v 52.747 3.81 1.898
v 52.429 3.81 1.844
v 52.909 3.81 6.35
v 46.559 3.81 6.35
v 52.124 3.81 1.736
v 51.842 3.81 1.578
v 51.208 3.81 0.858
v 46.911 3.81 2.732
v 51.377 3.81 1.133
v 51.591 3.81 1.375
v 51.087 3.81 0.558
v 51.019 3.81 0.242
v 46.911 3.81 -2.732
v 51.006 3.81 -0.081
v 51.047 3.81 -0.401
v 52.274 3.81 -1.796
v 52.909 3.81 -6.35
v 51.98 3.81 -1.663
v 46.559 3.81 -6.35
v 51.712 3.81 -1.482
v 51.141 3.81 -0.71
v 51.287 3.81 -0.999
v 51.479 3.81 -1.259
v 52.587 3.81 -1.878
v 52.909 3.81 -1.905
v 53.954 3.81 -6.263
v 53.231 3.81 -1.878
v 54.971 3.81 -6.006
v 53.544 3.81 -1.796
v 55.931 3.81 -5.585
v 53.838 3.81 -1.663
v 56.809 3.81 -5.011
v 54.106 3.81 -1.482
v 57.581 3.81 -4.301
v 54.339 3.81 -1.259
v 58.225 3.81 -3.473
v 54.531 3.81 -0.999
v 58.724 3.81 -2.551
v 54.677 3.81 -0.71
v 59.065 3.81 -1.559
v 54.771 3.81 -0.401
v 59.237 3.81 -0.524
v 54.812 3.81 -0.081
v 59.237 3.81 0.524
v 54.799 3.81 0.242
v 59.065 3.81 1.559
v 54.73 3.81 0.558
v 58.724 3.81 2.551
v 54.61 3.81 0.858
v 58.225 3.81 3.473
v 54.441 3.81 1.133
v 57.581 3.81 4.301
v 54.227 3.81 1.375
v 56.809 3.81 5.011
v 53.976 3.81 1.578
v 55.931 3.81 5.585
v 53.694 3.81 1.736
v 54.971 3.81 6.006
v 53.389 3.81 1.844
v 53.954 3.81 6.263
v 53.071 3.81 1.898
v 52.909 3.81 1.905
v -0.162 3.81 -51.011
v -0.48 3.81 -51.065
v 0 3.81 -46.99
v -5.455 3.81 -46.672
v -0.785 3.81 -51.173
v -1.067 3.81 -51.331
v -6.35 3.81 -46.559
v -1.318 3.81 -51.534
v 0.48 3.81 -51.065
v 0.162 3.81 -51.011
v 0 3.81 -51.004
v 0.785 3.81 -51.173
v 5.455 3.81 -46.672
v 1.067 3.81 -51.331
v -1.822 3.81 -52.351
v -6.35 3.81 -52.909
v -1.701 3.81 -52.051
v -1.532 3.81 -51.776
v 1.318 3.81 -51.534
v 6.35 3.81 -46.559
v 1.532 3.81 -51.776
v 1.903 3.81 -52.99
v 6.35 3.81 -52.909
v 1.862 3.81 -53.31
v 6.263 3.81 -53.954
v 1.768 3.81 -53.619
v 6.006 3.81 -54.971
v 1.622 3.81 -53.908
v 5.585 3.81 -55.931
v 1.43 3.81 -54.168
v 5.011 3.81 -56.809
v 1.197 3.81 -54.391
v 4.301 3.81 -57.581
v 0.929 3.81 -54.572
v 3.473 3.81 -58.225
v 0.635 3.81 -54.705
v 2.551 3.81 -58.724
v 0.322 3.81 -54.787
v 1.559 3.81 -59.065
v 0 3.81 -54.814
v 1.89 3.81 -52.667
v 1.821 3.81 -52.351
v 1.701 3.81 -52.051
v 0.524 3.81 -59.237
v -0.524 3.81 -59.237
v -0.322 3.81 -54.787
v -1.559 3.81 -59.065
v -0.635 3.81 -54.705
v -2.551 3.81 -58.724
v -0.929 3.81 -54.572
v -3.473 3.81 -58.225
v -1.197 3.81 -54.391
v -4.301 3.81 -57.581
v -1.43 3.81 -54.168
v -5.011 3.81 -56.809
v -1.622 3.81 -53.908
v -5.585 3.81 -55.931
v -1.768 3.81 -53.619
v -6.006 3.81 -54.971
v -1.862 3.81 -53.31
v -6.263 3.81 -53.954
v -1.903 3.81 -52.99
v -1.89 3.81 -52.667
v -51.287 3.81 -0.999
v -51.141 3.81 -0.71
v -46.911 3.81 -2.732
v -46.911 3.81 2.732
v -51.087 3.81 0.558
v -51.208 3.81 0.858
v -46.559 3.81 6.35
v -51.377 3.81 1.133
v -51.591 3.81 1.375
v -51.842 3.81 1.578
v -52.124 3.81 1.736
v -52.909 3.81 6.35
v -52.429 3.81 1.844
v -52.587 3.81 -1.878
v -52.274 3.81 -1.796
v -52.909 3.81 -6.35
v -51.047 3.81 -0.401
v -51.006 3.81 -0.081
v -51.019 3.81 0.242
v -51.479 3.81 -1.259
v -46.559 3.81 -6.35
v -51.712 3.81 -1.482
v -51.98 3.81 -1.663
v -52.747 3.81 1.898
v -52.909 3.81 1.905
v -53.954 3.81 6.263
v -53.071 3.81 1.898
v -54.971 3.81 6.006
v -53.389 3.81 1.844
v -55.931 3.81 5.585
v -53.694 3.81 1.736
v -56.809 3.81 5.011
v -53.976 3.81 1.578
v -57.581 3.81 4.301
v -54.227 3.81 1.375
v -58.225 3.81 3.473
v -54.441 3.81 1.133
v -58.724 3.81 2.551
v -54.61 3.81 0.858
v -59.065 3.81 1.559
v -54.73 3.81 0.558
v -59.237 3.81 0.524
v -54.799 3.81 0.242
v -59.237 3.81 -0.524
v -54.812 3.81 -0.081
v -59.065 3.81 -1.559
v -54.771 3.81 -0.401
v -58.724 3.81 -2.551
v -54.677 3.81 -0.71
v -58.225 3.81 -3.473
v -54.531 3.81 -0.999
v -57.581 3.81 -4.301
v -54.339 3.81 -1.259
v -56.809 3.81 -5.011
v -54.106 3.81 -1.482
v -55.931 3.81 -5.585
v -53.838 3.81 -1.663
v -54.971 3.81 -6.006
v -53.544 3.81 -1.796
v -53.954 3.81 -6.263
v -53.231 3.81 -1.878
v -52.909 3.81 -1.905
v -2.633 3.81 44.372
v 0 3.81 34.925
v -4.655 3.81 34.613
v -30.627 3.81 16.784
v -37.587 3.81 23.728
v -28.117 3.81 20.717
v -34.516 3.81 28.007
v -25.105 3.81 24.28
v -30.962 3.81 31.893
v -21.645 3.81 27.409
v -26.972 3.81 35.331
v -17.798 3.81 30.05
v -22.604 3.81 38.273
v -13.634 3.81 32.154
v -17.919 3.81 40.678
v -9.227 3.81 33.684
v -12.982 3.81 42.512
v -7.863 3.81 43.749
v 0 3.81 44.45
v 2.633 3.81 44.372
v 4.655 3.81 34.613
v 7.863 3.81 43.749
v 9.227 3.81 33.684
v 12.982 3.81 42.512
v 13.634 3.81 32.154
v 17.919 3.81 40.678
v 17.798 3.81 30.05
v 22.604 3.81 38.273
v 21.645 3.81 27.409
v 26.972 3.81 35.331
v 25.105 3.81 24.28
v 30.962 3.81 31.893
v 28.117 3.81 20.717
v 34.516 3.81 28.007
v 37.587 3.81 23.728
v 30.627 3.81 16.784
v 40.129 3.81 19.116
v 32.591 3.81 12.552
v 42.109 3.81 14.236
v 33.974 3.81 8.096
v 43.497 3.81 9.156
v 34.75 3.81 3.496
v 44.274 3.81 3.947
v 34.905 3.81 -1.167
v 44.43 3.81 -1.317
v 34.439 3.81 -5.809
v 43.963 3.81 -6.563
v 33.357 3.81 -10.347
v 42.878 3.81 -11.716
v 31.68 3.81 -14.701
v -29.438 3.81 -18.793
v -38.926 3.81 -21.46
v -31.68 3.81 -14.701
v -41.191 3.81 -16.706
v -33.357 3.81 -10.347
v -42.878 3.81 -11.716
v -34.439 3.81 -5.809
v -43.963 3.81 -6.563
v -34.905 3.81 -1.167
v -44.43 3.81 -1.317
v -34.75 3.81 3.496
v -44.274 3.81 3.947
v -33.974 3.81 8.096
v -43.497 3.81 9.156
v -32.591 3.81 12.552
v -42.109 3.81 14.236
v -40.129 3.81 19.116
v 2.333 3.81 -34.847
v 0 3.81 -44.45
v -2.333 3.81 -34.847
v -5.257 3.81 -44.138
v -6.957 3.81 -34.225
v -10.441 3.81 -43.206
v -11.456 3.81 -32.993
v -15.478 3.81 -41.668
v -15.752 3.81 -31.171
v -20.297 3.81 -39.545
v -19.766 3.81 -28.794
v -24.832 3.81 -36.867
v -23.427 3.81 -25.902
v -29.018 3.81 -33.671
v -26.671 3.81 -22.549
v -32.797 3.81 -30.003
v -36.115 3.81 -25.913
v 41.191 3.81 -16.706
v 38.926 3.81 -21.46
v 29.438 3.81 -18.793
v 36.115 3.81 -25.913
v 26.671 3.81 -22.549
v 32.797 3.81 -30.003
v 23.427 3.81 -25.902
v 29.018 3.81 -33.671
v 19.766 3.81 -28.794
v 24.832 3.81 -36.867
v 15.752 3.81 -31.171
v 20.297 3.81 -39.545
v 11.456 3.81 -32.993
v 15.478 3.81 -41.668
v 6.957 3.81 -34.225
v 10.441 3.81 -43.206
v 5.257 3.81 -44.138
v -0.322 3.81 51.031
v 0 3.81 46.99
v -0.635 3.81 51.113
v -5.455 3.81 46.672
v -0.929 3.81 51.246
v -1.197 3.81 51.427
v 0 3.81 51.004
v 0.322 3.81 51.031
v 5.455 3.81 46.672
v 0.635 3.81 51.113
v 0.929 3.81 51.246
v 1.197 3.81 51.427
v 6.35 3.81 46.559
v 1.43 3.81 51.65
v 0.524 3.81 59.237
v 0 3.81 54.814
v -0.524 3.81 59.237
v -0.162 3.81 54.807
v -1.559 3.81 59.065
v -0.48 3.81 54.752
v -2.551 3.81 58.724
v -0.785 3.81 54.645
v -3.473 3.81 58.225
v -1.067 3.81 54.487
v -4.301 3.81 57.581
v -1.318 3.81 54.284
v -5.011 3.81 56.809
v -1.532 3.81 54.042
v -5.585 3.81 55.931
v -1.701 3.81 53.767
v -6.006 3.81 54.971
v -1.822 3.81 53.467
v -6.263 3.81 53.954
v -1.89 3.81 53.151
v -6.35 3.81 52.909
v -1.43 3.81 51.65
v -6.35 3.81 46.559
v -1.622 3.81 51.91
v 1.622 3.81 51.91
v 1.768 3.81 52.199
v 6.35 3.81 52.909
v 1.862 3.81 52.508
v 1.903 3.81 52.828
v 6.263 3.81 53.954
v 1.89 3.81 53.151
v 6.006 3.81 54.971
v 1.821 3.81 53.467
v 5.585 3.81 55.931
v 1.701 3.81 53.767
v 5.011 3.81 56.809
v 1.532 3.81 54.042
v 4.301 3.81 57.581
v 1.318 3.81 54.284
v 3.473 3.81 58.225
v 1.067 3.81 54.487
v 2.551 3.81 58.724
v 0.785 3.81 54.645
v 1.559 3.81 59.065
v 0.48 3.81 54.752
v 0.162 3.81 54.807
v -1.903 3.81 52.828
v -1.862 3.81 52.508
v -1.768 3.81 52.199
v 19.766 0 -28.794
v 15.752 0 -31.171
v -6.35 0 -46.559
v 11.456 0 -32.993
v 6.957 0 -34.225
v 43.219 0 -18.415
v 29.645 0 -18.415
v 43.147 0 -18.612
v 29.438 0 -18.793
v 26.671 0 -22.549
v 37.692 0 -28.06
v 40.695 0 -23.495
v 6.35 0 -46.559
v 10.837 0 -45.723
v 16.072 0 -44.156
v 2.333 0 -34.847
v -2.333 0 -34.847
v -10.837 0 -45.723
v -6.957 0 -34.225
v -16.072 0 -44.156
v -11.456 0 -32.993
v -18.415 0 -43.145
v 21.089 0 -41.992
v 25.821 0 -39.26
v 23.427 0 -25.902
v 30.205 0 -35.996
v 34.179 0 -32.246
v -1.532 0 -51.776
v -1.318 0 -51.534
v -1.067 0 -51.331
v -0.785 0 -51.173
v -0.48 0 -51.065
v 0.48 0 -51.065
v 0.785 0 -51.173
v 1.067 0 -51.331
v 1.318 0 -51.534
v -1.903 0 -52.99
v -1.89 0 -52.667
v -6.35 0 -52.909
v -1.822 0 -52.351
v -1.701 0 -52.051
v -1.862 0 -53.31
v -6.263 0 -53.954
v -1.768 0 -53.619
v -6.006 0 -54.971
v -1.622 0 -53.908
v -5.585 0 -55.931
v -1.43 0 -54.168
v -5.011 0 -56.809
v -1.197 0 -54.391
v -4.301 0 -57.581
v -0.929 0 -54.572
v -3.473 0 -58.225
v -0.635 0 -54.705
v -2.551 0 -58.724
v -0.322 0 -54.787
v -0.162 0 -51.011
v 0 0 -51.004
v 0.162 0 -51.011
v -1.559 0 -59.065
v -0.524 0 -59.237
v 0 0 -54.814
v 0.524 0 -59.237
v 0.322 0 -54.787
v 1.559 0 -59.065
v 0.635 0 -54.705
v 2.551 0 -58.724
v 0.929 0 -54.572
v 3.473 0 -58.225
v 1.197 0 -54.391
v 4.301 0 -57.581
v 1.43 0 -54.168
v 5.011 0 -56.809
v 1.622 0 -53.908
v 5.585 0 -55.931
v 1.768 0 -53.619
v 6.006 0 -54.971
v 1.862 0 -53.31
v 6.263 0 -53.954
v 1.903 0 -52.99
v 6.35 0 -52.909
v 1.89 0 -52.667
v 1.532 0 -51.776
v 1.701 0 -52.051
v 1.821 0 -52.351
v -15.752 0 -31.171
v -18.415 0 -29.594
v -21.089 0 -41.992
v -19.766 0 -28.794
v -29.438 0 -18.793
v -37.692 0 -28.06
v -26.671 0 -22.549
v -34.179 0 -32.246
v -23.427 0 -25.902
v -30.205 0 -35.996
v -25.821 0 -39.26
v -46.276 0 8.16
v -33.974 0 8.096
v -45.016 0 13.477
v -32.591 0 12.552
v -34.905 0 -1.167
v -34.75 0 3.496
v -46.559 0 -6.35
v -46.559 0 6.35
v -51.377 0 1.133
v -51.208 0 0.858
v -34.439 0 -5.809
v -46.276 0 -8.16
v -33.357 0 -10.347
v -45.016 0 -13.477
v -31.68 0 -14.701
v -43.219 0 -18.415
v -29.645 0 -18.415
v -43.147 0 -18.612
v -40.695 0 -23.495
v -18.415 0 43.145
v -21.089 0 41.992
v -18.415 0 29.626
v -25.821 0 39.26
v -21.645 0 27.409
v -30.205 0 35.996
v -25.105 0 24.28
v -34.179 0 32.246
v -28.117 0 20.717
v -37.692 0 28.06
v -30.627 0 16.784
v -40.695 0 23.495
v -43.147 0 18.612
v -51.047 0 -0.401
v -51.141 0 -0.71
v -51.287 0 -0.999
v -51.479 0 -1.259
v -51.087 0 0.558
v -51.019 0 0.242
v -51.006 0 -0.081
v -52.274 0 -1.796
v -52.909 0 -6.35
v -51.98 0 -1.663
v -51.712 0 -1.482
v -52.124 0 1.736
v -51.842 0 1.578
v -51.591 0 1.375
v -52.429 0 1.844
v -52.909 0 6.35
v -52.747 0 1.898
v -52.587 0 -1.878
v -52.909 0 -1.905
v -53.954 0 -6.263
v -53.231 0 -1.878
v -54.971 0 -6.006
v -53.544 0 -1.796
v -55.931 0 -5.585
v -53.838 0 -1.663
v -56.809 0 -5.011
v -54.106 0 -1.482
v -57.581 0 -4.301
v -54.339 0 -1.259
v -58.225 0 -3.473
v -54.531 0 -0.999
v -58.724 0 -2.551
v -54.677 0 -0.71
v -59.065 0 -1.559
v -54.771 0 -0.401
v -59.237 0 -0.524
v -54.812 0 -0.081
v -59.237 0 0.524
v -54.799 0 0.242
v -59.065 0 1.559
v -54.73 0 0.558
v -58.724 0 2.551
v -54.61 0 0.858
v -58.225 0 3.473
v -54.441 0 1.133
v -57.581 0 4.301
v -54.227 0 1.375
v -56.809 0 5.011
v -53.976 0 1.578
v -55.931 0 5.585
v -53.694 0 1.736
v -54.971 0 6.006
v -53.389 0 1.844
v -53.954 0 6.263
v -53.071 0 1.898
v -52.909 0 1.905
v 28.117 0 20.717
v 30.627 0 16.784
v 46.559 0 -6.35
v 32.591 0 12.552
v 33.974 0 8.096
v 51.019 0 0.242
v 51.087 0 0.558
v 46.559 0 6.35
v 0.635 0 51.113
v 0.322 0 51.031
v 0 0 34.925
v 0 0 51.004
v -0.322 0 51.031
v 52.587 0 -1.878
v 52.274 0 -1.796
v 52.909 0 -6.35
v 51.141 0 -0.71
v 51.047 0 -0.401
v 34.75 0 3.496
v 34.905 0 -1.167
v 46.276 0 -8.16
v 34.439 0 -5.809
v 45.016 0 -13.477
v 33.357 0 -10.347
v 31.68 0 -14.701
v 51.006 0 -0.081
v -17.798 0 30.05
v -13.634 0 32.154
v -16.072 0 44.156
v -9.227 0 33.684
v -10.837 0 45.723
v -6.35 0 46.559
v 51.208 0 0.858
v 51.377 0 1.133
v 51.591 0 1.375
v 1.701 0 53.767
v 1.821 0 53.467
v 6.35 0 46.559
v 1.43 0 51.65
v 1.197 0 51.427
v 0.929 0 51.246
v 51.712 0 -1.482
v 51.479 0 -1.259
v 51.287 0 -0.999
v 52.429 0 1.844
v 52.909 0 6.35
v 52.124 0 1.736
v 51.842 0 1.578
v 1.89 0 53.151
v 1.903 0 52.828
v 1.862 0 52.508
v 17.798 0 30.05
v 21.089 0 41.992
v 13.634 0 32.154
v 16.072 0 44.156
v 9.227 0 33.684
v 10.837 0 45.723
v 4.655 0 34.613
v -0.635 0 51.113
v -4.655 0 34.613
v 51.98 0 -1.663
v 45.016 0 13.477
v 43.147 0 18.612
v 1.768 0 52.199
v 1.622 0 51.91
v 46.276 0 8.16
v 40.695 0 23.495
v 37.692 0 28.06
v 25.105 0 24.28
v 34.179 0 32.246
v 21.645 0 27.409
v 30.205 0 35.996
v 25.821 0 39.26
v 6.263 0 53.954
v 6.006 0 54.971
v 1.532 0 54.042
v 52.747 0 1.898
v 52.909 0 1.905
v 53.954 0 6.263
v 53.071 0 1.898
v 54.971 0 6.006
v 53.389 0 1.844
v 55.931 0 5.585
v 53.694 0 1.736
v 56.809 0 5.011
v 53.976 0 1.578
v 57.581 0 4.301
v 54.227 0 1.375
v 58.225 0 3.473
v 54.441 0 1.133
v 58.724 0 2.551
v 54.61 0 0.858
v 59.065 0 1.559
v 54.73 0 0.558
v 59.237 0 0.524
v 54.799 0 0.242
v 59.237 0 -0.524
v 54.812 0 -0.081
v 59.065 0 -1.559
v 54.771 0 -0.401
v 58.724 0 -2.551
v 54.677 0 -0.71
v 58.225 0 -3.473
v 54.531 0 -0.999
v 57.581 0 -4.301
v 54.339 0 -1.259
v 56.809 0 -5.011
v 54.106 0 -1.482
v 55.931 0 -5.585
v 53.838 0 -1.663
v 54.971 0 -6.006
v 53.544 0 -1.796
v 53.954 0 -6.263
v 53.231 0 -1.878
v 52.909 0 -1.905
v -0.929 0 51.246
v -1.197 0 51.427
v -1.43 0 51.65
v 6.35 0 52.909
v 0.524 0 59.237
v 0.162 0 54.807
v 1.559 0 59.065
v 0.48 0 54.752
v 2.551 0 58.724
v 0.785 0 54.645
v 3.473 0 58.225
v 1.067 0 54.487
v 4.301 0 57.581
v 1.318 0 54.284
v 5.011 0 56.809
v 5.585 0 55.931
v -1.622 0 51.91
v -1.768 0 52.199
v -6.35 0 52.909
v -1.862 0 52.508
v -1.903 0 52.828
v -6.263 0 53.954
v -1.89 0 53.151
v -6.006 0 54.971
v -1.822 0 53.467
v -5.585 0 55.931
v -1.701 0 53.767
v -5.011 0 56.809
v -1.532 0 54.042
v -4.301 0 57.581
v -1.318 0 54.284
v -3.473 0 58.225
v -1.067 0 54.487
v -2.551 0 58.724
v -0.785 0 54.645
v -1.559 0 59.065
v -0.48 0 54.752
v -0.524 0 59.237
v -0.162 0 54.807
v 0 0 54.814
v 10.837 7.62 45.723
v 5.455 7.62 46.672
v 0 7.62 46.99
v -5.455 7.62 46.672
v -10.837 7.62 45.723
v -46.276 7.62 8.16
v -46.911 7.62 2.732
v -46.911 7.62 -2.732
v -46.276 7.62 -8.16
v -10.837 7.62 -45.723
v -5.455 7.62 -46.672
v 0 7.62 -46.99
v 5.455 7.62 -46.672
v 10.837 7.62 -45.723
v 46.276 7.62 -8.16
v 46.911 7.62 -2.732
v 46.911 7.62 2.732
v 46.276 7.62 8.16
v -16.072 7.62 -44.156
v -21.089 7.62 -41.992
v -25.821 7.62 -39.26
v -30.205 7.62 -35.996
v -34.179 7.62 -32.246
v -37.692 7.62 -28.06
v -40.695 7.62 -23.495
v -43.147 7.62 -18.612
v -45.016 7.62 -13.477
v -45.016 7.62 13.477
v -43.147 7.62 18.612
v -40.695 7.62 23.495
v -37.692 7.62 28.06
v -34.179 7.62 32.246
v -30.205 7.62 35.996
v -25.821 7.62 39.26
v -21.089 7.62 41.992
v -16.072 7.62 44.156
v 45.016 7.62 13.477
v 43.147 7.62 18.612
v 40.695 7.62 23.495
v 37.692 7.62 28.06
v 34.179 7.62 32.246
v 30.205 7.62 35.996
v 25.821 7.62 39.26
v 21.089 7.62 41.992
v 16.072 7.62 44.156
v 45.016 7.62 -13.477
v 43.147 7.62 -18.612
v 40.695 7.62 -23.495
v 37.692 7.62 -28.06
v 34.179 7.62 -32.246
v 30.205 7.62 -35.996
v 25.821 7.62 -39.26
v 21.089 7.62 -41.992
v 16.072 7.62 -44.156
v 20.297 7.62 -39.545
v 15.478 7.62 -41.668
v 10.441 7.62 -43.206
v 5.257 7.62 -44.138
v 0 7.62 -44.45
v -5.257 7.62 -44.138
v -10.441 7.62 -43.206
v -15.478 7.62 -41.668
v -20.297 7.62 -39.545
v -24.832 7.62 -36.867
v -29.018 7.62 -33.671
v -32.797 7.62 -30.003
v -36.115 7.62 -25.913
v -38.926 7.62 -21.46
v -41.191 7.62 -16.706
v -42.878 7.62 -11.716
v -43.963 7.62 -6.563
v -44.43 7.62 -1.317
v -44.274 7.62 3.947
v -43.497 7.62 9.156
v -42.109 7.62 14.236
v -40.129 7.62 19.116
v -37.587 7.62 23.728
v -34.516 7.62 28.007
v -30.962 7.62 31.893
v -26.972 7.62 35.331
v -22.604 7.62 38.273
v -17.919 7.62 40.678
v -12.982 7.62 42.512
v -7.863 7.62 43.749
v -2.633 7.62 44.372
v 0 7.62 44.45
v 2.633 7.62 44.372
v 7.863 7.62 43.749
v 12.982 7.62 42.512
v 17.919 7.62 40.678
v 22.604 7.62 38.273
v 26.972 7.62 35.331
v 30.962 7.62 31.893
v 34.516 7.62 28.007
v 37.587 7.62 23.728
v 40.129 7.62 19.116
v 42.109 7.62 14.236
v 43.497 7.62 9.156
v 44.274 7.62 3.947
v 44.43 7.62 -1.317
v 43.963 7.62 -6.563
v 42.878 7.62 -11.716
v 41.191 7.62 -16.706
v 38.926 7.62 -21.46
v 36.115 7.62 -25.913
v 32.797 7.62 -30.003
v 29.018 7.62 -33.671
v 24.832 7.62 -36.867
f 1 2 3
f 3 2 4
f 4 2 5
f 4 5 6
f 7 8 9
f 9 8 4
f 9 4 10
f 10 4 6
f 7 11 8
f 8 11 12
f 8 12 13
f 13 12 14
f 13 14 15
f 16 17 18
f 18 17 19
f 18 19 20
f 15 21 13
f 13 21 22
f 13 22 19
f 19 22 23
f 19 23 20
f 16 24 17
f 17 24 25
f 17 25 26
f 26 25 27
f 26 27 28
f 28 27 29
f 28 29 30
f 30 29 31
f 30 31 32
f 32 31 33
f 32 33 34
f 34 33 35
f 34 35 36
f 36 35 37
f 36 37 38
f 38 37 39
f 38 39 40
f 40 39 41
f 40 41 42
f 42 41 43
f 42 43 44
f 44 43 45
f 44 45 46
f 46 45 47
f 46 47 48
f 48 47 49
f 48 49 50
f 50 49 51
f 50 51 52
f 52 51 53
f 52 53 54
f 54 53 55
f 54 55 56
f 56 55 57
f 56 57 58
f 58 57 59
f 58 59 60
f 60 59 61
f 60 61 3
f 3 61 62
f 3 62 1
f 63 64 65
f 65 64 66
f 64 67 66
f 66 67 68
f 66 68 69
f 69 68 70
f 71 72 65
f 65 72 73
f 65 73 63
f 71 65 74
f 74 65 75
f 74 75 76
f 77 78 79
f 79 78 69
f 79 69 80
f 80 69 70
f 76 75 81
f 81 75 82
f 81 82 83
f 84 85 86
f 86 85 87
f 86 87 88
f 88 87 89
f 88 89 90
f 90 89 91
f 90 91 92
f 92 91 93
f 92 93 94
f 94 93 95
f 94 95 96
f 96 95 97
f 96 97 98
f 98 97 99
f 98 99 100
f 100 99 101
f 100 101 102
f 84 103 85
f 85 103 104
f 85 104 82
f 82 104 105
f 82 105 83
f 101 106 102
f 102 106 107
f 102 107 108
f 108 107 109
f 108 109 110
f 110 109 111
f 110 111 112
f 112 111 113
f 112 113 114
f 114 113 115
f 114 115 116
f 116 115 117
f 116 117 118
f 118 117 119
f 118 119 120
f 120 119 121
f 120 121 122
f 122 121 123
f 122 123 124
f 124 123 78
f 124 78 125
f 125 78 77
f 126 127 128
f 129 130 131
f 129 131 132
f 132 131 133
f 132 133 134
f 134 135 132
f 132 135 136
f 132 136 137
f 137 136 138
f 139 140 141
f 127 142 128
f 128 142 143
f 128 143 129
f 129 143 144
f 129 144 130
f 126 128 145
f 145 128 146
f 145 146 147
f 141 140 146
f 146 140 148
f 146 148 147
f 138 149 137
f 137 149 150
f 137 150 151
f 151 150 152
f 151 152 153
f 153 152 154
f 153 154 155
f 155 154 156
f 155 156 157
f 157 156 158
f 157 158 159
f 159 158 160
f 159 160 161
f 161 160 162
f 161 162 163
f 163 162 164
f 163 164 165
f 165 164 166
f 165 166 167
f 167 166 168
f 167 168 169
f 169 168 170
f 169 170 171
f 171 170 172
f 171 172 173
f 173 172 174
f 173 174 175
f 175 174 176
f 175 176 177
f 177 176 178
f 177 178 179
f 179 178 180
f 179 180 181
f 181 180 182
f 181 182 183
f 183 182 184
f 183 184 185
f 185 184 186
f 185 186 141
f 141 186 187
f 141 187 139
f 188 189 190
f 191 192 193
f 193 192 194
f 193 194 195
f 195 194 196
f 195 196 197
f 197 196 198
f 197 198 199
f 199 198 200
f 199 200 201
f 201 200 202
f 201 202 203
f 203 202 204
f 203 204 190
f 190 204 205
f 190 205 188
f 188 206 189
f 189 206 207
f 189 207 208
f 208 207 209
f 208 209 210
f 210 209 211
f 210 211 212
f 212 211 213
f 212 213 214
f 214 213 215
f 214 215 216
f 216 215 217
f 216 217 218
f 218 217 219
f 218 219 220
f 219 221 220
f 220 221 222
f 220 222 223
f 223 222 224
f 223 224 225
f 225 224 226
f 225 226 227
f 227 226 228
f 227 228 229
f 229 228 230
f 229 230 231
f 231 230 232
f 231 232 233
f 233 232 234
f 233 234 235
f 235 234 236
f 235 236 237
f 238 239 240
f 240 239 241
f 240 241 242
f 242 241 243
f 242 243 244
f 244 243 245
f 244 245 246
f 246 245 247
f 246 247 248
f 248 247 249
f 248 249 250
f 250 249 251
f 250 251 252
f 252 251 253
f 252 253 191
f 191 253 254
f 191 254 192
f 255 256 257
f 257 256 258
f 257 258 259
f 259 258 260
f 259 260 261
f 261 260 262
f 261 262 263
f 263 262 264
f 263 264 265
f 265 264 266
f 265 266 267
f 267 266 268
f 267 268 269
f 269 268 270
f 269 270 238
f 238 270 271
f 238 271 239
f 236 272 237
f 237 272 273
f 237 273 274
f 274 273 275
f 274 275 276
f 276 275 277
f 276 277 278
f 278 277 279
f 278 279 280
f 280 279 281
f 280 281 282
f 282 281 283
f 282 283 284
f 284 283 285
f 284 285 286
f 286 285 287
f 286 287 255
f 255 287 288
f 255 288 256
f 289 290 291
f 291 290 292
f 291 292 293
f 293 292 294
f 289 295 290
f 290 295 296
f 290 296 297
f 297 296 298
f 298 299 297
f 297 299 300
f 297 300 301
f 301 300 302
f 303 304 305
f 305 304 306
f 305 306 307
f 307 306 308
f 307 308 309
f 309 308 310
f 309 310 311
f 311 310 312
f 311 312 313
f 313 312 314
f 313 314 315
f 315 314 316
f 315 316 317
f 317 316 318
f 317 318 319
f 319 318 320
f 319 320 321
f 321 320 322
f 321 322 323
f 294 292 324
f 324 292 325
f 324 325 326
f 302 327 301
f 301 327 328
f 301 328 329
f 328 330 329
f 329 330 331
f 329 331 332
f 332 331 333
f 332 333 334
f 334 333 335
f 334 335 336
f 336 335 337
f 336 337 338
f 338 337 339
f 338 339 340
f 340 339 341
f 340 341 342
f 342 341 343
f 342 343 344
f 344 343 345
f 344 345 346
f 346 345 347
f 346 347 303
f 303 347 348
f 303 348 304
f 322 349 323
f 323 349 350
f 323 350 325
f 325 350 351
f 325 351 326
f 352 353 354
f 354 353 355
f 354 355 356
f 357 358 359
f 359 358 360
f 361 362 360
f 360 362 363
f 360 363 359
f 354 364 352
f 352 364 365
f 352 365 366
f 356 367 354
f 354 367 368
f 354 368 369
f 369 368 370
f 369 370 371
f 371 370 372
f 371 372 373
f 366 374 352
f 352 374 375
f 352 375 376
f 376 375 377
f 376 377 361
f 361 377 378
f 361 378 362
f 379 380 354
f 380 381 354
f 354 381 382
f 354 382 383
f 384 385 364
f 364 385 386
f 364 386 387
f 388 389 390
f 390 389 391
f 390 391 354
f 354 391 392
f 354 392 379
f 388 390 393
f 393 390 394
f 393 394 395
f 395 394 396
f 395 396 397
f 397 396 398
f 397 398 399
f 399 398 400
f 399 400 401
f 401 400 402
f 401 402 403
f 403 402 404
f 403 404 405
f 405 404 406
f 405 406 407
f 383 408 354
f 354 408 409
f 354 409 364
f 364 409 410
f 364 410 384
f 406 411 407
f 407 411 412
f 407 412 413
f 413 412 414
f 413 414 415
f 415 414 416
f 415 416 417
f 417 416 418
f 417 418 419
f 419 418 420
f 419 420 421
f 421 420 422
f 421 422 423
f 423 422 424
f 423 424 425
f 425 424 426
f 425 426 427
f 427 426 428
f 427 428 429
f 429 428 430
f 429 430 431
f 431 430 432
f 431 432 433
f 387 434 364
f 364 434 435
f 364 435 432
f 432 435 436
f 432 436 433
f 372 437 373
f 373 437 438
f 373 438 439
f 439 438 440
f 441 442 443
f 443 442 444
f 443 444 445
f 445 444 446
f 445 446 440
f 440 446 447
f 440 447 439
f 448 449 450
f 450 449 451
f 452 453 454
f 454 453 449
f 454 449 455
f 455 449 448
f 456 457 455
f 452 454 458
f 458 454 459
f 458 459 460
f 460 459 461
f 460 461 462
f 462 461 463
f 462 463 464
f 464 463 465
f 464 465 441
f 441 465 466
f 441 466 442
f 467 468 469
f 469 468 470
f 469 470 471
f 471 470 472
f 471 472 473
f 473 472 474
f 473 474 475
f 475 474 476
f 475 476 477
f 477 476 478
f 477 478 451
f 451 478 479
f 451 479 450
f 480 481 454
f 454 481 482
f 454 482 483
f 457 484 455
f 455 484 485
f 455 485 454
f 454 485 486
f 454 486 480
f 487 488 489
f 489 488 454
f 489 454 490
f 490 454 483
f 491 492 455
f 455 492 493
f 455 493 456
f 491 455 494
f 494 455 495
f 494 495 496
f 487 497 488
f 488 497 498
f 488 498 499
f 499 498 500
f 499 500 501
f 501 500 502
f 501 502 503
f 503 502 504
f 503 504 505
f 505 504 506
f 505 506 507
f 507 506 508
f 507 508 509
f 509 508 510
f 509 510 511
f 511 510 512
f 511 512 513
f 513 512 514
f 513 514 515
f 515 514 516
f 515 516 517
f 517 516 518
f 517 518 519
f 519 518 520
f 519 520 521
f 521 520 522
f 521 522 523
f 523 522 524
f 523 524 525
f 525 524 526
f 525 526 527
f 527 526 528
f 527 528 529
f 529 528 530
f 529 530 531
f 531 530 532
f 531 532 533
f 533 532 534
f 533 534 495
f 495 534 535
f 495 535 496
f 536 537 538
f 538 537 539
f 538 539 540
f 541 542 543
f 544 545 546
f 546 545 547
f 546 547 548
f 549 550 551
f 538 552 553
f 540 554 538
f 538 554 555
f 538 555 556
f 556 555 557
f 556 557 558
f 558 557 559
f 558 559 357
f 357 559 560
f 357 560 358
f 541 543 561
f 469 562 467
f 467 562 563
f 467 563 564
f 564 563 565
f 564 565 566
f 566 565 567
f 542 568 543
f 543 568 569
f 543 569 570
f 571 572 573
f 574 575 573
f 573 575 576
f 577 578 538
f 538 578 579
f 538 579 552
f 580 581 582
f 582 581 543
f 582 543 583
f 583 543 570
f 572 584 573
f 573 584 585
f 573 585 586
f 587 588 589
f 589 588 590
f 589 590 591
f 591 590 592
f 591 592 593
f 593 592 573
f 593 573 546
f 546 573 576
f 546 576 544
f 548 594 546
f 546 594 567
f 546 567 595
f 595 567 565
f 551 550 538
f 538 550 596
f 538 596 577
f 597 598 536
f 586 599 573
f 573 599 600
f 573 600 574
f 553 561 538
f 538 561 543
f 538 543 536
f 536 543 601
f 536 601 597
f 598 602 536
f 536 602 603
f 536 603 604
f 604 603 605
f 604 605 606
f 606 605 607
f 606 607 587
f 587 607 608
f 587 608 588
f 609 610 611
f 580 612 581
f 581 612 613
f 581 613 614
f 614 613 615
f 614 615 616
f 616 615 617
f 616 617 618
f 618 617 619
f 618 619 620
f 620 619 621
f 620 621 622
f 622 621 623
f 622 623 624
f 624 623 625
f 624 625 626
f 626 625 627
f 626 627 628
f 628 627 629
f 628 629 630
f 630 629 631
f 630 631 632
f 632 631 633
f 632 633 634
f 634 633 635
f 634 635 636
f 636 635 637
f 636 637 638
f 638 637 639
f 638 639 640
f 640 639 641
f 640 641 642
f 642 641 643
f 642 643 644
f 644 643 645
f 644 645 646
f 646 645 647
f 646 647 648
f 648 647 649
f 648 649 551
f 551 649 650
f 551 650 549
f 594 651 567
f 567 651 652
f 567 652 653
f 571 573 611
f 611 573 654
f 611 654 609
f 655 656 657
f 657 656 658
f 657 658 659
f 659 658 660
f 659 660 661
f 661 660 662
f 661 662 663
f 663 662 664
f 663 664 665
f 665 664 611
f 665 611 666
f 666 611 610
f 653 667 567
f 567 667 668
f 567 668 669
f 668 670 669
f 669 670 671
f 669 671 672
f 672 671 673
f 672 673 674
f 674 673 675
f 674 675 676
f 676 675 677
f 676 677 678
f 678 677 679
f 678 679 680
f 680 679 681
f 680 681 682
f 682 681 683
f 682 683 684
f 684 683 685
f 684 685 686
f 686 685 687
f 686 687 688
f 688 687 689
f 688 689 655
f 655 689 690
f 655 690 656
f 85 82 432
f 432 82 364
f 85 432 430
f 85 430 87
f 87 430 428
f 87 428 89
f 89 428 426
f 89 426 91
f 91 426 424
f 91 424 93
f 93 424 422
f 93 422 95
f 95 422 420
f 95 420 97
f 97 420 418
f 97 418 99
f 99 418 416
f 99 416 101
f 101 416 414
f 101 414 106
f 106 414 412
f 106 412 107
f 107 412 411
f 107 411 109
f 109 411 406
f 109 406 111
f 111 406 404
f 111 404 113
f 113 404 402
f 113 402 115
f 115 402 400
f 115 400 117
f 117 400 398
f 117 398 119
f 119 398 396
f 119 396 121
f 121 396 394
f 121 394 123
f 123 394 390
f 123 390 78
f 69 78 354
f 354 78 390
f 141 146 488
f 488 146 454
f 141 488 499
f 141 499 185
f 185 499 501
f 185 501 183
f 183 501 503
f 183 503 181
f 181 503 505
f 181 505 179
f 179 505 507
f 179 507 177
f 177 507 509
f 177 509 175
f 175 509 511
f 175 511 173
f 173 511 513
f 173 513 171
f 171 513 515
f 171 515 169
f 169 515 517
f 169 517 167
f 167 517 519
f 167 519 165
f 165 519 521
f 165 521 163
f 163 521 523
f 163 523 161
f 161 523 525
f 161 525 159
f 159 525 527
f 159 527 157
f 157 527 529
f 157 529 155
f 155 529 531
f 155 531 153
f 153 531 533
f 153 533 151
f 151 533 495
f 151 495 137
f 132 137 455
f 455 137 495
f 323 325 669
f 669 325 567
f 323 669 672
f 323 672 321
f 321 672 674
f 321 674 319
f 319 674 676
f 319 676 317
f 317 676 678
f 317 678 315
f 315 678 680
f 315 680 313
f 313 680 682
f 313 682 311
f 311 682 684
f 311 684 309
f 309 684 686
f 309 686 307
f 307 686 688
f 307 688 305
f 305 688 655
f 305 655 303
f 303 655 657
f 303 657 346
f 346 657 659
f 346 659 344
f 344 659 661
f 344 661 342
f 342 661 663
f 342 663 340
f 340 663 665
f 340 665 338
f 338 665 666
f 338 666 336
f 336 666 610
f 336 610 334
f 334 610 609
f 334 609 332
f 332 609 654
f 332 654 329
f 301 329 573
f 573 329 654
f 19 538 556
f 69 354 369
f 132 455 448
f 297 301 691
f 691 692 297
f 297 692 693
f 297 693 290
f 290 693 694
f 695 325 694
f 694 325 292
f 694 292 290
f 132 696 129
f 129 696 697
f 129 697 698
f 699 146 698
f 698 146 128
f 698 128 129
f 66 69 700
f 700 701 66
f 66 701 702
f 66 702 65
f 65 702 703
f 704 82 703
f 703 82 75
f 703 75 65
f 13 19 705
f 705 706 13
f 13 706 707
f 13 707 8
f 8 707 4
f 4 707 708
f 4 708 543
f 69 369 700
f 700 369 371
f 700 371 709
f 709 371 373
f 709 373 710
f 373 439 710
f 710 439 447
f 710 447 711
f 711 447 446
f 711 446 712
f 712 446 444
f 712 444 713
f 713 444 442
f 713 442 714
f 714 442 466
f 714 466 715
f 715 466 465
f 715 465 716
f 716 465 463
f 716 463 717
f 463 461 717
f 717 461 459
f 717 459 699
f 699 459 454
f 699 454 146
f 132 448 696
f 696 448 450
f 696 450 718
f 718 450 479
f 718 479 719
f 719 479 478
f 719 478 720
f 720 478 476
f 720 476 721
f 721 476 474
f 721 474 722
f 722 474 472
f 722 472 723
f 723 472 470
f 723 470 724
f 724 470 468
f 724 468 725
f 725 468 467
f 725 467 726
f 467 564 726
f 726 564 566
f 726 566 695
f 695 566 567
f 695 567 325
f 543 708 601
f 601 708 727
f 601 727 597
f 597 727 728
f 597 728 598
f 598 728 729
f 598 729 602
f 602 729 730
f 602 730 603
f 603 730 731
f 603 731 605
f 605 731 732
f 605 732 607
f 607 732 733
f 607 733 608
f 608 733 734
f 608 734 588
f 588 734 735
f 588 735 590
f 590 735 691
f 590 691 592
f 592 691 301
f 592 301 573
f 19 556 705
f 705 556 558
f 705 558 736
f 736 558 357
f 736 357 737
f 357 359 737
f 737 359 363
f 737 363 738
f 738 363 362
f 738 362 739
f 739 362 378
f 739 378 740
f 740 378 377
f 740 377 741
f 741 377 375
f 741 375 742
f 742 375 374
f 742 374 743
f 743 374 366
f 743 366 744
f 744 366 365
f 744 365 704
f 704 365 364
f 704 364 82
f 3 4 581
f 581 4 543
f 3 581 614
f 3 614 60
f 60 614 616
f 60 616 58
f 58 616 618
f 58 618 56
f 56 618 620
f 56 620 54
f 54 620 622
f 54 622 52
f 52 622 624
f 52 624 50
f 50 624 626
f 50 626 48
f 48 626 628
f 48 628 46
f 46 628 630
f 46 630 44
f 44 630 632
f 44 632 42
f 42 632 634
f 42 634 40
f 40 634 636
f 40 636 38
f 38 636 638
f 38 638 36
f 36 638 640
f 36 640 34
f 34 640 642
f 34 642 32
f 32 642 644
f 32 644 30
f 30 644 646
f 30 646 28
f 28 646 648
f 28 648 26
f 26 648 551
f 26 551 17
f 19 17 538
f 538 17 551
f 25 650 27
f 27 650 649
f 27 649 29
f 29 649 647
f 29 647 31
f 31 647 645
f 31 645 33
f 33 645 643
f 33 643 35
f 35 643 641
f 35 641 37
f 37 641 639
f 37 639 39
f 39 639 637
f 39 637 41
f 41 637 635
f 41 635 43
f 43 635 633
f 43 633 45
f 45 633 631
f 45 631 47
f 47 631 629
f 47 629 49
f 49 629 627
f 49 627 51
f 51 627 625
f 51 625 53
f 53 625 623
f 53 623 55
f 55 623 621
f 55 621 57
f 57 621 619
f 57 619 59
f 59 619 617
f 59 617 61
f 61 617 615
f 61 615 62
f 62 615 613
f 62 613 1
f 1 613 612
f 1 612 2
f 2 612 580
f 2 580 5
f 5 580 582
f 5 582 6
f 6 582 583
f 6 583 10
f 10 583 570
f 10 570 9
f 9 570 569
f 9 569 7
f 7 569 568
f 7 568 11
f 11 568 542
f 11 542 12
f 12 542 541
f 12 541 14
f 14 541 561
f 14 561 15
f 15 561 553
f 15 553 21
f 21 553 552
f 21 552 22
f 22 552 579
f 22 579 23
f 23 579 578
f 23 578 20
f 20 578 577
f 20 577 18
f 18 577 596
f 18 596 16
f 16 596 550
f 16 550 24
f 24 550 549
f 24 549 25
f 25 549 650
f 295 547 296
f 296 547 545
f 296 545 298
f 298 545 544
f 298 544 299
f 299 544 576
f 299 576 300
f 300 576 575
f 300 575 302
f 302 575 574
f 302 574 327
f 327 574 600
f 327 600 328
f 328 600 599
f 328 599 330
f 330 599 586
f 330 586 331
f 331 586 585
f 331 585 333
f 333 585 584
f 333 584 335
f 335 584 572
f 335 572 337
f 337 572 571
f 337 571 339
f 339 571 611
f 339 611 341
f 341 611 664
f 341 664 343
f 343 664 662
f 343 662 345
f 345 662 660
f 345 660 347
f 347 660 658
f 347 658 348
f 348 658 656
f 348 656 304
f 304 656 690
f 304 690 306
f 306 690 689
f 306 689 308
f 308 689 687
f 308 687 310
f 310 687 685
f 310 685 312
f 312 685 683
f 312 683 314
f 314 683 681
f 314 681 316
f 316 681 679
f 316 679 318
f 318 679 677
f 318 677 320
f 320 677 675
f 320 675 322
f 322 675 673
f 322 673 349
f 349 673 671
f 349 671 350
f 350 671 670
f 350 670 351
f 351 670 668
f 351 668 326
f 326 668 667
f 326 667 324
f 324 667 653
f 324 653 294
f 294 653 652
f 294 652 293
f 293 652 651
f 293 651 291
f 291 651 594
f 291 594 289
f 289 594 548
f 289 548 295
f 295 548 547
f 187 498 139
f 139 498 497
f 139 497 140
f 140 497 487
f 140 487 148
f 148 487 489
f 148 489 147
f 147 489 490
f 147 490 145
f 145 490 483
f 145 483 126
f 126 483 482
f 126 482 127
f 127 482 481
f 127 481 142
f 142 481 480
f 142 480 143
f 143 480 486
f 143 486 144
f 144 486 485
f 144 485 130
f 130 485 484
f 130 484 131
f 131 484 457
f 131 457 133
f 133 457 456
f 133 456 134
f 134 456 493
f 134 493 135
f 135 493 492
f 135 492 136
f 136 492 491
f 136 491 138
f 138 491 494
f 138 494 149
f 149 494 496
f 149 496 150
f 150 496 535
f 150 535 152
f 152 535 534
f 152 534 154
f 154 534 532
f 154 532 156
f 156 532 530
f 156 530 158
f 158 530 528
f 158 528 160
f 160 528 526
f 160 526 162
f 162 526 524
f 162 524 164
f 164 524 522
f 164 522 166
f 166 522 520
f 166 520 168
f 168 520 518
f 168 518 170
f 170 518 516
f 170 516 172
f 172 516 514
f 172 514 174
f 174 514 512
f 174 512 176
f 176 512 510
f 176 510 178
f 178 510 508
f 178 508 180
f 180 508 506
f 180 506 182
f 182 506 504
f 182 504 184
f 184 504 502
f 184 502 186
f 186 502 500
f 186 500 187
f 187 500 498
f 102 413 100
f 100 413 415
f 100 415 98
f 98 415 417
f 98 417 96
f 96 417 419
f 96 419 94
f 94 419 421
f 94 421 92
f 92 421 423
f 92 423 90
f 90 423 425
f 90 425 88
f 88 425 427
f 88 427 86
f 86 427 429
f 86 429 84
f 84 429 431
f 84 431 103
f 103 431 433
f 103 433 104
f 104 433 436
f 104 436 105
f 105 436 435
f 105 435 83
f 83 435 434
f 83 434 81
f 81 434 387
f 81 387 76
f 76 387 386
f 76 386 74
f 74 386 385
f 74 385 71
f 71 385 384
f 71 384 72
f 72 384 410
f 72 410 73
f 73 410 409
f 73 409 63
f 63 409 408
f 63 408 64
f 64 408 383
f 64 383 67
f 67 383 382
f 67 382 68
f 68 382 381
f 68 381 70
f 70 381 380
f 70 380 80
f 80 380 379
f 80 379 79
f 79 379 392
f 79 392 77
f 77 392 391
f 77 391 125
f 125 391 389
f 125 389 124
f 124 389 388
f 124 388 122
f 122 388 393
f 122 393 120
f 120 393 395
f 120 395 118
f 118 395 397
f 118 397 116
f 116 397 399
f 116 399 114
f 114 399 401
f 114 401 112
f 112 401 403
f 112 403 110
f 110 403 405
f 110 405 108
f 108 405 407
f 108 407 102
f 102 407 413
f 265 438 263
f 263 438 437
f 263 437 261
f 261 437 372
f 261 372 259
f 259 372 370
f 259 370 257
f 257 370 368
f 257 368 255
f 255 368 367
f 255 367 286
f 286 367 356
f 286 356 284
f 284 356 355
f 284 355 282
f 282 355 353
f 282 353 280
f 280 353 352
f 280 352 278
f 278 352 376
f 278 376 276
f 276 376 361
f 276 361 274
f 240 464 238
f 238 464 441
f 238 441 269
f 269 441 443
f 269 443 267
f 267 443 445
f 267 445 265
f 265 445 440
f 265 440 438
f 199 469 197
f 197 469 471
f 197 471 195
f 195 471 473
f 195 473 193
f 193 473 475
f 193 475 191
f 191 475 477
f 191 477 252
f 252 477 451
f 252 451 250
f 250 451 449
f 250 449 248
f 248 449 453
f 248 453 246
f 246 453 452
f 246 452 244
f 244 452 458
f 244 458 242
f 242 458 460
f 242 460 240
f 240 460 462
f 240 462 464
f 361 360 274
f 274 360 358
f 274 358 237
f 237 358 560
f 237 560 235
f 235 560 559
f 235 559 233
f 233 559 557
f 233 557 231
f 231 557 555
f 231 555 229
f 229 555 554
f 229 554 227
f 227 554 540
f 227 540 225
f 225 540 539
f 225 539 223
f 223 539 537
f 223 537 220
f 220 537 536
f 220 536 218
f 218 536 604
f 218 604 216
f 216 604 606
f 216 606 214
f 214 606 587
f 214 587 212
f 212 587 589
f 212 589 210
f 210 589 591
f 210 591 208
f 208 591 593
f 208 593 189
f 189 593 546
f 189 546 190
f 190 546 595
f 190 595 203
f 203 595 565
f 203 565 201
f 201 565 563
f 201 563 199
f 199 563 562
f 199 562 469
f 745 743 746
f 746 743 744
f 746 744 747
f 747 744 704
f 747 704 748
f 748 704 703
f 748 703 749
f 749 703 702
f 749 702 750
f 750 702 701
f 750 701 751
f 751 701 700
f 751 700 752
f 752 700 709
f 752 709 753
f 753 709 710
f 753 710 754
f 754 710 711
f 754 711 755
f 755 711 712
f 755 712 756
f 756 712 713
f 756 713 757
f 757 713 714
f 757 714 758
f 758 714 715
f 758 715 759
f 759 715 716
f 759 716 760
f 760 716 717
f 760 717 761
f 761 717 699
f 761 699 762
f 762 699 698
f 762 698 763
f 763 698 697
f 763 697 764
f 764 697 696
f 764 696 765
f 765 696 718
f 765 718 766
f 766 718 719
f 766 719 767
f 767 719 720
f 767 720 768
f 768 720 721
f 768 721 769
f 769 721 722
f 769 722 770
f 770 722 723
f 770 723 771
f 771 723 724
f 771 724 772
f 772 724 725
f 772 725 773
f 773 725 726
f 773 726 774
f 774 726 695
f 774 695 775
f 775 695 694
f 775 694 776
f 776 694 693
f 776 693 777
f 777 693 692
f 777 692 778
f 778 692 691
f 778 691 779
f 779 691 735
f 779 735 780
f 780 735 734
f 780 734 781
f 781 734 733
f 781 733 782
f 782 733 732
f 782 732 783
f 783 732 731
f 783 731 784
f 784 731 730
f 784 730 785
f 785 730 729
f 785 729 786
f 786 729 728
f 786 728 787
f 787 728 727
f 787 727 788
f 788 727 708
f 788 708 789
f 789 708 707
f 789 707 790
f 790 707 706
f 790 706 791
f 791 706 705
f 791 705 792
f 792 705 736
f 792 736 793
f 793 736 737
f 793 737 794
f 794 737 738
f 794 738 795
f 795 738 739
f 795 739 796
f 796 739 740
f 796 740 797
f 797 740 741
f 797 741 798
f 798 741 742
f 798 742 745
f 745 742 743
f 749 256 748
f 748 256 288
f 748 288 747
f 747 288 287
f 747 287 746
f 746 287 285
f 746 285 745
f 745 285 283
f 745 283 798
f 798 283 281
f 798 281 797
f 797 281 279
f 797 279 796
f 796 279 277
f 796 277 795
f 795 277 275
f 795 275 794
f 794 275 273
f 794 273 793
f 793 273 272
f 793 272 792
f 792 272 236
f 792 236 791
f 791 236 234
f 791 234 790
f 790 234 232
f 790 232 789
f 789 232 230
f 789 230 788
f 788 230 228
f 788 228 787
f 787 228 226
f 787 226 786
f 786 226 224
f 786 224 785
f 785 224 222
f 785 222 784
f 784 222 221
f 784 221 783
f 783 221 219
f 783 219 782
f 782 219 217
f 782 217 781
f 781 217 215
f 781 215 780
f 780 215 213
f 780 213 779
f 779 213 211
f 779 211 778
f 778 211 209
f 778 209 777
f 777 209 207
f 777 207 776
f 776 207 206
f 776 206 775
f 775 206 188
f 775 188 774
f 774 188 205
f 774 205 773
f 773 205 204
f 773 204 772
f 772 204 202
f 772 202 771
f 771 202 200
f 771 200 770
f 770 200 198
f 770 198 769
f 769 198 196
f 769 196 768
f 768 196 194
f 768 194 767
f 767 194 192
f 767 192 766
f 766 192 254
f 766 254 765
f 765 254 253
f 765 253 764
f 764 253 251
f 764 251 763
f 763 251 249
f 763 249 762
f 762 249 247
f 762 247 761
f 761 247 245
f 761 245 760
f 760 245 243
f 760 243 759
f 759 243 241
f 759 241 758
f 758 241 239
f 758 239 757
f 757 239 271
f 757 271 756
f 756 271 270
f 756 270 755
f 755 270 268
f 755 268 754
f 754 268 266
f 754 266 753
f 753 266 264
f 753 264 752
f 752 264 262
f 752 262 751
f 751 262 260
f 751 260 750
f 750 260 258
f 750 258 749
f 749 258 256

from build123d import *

# Parameters (mm, degrees)
SKETCH1_R           = 1.905
BOSS_EXTRUDE1_DEPTH = 3.81
SKETCH2_R           = 34.925
CUT_EXTRUDE2_DEPTH  = 4.81
SKETCH3_R           = 46.99
SKETCH3_R_2         = 44.45
BOSS_EXTRUDE2_DEPTH = 3.81


with BuildPart() as part:
    # Sketch1 → Boss-Extrude1 (new body)
    with BuildSketch(Plane(origin=(0, 0, 0), x_dir=(1, 0, 0), z_dir=(0, 1, 0))):
        with BuildLine():
            Line((46.558969061, 6.35), (52.908969061, 6.35))
            ThreePointArc((52.908969061, 6.35), (59.258969061, 0), (52.908969061, -6.35))
            Line((52.908969061, -6.35), (46.558969061, -6.35))
            ThreePointArc((46.558969061, -6.35), (33.226947648, -33.226947648), (6.35, -46.558969061))
            Line((6.35, -46.558969061), (6.35, -52.908969061))
            ThreePointArc((6.35, -52.908969061), (0, -59.258969061), (-6.35, -52.908969061))
            Line((-6.35, -52.908969061), (-6.35, -46.558969061))
            ThreePointArc((-6.35, -46.558969061), (-33.226947648, -33.226947648), (-46.558969061, -6.35))
            Line((-46.558969061, -6.35), (-52.908969061, -6.35))
            ThreePointArc((-52.908969061, -6.35), (-59.258969061, 0), (-52.908969061, 6.35))
            Line((-52.908969061, 6.35), (-46.558969061, 6.35))
            ThreePointArc((-46.558969061, 6.35), (-33.226947648, 33.226947648), (-6.35, 46.558969061))
            Line((-6.35, 46.558969061), (-6.35, 52.908969061))
            ThreePointArc((-6.35, 52.908969061), (0, 59.258969061), (6.35, 52.908969061))
            Line((6.35, 52.908969061), (6.35, 46.558969061))
            ThreePointArc((6.35, 46.558969061), (33.226947648, 33.226947648), (46.558969061, 6.35))
        make_face()
        with Locations((52.908969061, 0)):
            Circle(SKETCH1_R, mode=Mode.SUBTRACT)
        with Locations((0, -52.908969061)):
            Circle(SKETCH1_R, mode=Mode.SUBTRACT)
        with Locations((-52.908969061, 0)):
            Circle(SKETCH1_R, mode=Mode.SUBTRACT)
        with Locations((0, 52.908969061)):
            Circle(SKETCH1_R, mode=Mode.SUBTRACT)
    extrude(amount=BOSS_EXTRUDE1_DEPTH)

    # Sketch2 → Cut-Extrude2 (cut, through all)
    with BuildSketch(Plane(origin=(0, 3.81, 0), x_dir=(1, 0, 0), z_dir=(0, 1, 0))):
        Circle(SKETCH2_R)
    extrude(amount=-CUT_EXTRUDE2_DEPTH, mode=Mode.SUBTRACT)

    # Sketch3 → Boss-Extrude2 (add)
    with BuildSketch(Plane(origin=(0, 3.81, 0), x_dir=(1, 0, 0), z_dir=(0, 1, 0))):
        Circle(SKETCH3_R)
        Circle(SKETCH3_R_2, mode=Mode.SUBTRACT)
    extrude(amount=BOSS_EXTRUDE2_DEPTH)


solid = part.part
